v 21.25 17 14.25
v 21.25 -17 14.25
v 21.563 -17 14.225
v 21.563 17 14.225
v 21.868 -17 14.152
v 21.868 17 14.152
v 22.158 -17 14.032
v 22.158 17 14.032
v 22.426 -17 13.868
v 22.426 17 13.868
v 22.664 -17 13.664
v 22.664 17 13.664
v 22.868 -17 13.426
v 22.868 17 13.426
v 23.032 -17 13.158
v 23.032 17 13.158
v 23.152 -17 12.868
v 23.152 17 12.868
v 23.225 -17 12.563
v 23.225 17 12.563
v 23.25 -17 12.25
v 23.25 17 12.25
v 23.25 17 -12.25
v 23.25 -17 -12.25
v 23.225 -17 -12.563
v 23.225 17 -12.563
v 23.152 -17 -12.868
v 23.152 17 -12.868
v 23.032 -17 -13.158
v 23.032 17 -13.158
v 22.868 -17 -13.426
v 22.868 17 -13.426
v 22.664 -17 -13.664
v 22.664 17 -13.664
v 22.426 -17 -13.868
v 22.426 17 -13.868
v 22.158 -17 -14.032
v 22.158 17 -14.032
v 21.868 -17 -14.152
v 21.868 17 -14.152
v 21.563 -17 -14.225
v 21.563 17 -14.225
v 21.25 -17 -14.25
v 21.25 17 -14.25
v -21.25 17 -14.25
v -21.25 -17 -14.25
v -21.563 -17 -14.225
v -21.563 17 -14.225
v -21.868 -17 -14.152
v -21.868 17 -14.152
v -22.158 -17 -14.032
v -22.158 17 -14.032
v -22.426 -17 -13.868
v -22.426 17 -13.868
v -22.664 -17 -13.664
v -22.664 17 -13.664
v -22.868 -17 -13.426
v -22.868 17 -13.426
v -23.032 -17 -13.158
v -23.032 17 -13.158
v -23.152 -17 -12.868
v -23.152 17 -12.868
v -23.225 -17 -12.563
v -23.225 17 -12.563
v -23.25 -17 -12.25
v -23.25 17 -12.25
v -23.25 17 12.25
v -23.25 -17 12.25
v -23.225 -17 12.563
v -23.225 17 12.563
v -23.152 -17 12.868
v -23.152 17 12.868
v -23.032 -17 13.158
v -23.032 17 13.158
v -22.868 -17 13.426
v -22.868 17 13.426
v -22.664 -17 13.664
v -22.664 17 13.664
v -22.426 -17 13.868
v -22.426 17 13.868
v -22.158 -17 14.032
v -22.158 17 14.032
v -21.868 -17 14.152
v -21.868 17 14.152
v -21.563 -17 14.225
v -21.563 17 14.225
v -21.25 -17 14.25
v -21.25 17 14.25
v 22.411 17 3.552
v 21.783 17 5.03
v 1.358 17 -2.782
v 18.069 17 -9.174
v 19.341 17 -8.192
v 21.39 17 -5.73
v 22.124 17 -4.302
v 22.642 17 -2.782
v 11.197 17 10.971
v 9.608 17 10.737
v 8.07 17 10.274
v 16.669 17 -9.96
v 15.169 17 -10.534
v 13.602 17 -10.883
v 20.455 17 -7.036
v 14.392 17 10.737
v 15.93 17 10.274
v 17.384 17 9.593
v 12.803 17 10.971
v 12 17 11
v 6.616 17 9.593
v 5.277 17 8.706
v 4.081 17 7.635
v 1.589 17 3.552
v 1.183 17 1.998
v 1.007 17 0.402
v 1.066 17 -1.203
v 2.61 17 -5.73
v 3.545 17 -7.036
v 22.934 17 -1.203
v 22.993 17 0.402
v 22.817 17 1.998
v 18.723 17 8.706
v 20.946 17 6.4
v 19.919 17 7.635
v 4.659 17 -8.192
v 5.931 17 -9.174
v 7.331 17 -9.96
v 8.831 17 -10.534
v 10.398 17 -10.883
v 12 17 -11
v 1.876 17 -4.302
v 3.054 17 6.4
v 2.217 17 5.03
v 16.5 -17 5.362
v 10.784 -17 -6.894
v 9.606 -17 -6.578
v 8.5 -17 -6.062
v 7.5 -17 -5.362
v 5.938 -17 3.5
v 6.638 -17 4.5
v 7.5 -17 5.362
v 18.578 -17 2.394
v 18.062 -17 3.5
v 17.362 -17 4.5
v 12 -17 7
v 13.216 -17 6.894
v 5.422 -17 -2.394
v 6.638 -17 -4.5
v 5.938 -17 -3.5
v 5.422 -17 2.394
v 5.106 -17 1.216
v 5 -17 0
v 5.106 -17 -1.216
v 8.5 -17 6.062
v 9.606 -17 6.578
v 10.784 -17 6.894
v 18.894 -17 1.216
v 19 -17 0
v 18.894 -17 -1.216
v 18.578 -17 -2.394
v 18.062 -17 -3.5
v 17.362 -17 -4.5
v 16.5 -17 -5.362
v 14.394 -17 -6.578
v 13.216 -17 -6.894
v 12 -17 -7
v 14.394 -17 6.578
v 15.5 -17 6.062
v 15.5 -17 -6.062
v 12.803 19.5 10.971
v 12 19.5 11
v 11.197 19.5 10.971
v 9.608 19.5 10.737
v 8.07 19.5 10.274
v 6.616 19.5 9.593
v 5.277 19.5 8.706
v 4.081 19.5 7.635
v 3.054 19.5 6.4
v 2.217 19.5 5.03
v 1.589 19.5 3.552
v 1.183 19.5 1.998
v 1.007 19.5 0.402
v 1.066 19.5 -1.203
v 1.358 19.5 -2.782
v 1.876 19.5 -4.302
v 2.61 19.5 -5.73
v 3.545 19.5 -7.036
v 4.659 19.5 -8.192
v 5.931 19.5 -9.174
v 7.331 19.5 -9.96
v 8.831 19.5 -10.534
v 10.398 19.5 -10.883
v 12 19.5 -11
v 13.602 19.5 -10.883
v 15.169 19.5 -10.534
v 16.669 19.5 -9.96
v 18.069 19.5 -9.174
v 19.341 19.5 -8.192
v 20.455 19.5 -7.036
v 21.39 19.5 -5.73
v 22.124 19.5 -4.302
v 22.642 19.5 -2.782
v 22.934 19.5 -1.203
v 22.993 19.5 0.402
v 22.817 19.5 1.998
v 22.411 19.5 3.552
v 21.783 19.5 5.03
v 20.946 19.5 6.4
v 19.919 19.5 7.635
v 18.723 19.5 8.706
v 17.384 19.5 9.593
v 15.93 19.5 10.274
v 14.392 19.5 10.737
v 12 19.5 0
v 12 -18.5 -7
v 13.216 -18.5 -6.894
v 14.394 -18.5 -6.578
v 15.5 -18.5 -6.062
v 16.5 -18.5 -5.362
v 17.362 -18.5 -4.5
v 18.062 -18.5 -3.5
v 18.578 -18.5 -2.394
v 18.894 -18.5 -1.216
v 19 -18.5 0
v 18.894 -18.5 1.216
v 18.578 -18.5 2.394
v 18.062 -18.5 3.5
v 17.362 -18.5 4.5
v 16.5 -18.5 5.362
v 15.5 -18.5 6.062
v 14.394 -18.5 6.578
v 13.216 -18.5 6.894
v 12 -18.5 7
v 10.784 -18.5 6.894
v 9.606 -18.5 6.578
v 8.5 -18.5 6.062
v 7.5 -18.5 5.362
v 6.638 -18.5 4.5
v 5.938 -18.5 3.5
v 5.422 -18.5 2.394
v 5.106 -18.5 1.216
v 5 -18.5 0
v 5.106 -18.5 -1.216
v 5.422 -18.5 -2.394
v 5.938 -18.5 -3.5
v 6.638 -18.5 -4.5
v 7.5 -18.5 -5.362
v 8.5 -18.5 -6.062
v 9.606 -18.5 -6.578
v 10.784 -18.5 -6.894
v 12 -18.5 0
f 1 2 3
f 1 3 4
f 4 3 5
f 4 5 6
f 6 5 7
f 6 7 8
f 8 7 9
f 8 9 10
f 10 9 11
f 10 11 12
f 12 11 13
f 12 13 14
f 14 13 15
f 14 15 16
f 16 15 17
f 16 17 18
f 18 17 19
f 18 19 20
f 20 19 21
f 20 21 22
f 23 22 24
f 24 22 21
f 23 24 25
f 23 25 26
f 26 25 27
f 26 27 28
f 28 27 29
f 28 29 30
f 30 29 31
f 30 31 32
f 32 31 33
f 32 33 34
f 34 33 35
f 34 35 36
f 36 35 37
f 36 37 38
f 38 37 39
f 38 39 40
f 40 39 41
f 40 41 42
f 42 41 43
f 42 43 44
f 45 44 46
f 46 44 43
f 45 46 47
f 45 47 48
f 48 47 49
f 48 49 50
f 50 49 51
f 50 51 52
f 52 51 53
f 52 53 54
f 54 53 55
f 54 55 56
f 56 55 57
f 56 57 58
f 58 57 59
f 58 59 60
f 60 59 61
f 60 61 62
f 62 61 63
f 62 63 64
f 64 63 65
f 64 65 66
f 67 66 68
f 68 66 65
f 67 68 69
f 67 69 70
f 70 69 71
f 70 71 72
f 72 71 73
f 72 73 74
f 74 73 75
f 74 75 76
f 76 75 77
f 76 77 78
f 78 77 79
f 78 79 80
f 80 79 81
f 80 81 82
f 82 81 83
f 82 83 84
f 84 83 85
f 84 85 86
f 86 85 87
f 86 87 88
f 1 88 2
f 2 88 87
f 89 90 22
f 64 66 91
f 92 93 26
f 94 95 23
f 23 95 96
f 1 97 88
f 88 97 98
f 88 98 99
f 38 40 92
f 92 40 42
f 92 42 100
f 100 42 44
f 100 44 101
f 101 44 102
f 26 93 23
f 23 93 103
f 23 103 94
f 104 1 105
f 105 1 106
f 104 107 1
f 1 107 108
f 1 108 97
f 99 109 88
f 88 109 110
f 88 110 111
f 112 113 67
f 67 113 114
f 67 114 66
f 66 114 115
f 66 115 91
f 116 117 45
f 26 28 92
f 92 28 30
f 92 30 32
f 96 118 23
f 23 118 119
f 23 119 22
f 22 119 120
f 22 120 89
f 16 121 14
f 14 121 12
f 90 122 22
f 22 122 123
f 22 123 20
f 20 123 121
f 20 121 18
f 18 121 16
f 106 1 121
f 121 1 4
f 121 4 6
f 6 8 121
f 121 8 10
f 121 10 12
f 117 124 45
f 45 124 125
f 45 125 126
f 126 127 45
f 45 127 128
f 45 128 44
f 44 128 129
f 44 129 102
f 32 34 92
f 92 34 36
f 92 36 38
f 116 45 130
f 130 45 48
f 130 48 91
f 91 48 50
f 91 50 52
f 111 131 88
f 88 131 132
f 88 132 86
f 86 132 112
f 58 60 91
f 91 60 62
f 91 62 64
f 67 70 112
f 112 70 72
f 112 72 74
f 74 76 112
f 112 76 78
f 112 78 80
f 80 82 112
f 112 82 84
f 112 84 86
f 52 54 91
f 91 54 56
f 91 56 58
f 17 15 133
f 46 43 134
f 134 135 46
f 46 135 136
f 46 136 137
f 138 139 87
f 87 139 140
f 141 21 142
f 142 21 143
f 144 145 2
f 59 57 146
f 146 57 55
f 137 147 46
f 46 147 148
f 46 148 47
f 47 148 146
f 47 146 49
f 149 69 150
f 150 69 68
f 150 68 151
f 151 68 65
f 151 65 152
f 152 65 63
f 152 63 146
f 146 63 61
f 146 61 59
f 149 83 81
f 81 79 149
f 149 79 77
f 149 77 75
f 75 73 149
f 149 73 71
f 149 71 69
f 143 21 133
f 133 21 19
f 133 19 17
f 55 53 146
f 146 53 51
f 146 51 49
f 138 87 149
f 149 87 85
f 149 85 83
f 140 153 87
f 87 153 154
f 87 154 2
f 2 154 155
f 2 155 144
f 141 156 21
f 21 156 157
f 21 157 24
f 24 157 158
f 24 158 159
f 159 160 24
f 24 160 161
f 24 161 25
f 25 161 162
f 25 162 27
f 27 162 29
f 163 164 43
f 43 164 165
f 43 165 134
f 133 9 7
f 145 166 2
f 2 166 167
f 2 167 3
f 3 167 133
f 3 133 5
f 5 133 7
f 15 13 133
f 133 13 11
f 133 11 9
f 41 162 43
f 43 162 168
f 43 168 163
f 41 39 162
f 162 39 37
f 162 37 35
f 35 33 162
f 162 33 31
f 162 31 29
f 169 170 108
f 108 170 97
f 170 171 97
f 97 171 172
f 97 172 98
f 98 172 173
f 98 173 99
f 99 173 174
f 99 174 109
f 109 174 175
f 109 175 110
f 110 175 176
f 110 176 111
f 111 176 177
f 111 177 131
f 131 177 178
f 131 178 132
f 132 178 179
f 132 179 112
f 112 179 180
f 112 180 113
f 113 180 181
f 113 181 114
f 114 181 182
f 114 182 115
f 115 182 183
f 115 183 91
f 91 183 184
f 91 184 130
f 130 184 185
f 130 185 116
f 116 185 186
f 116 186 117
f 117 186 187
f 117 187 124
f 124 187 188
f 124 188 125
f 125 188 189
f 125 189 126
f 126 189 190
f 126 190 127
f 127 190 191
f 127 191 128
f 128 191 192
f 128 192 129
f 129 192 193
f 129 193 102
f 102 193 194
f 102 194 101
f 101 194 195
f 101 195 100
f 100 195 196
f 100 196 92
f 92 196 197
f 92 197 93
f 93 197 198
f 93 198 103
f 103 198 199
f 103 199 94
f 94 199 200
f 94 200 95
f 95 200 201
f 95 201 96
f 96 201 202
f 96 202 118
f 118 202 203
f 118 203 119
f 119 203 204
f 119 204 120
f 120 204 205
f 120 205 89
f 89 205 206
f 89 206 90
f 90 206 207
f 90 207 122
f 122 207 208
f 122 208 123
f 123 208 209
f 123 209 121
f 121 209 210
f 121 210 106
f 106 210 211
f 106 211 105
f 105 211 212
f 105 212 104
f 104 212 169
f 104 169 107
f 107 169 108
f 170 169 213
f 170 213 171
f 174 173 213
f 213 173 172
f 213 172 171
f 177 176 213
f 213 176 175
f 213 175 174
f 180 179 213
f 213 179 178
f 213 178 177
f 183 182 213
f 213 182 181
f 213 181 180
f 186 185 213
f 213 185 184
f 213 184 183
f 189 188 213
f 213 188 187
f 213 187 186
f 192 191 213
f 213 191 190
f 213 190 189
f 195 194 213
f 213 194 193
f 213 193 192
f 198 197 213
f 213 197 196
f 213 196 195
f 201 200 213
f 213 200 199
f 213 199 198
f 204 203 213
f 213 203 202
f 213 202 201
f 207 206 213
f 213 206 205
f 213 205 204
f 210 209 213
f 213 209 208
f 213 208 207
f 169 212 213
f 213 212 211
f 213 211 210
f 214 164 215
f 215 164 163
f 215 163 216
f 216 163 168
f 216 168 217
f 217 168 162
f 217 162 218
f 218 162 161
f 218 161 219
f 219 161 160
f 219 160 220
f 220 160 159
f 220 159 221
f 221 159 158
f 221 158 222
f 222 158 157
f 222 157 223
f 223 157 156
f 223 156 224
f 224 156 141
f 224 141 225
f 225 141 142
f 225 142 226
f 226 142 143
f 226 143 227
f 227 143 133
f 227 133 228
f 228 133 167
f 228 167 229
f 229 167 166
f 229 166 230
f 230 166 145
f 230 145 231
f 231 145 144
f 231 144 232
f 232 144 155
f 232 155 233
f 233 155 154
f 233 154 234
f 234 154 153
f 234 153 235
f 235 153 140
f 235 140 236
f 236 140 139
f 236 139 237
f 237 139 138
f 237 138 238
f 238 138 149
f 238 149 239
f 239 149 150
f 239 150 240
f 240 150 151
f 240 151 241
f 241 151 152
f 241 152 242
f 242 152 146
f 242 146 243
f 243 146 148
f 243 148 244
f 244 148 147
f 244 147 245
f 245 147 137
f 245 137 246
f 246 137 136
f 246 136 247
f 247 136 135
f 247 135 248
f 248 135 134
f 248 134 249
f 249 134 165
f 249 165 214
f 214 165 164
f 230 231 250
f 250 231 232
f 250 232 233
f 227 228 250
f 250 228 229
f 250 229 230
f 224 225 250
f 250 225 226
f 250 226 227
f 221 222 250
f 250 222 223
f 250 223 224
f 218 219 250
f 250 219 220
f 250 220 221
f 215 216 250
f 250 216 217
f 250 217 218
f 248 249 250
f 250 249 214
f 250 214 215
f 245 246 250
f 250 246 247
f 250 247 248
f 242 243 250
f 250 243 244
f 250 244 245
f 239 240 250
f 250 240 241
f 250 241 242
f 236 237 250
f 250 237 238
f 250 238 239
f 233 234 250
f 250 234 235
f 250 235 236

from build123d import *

# Parameters (mm, degrees)
HOUSING_START = -17
HOUSING_DEPTH = 34
HORN_START    = 17
SK_2_R        = 11
HORN_DEPTH    = 2.5
IDLER_START   = -18.5
SK_3_R        = 7
IDLER_DEPTH   = 1.5


with BuildPart() as part:
    # SK_1 → Housing (new body)
    with BuildSketch(Plane(origin=(0, 0, 0), x_dir=(1, 0, 0), z_dir=(0, 1, 0)).offset(HOUSING_START)):
        with BuildLine():
            Line((-21.25, -14.25), (21.25, -14.25))
            ThreePointArc((21.25, -14.25), (22.664213562, -13.664213562), (23.25, -12.25))
            Line((23.25, -12.25), (23.25, 12.25))
            ThreePointArc((23.25, 12.25), (22.664213562, 13.664213562), (21.25, 14.25))
            Line((21.25, 14.25), (-21.25, 14.25))
            ThreePointArc((-21.25, 14.25), (-22.664213562, 13.664213562), (-23.25, 12.25))
            Line((-23.25, 12.25), (-23.25, -12.25))
            ThreePointArc((-23.25, -12.25), (-22.664213562, -13.664213562), (-21.25, -14.25))
        make_face()
    extrude(amount=HOUSING_DEPTH)

    # SK_2 → Horn (add)
    with BuildSketch(Plane(origin=(0, 0, 0), x_dir=(1, 0, 0), z_dir=(0, 1, 0)).offset(HORN_START)):
        with Locations(Location((12, 0, 0), (0, 0, 270))):
            Circle(SK_2_R)
    extrude(amount=HORN_DEPTH)

    # SK_3 → Idler (add)
    with BuildSketch(Plane(origin=(0, 0, 0), x_dir=(1, 0, 0), z_dir=(0, 1, 0)).offset(IDLER_START)):
        with Locations(Location((12, 0, 0), (0, 0, 270))):
            Circle(SK_3_R)
    extrude(amount=IDLER_DEPTH)


solid = part.part
